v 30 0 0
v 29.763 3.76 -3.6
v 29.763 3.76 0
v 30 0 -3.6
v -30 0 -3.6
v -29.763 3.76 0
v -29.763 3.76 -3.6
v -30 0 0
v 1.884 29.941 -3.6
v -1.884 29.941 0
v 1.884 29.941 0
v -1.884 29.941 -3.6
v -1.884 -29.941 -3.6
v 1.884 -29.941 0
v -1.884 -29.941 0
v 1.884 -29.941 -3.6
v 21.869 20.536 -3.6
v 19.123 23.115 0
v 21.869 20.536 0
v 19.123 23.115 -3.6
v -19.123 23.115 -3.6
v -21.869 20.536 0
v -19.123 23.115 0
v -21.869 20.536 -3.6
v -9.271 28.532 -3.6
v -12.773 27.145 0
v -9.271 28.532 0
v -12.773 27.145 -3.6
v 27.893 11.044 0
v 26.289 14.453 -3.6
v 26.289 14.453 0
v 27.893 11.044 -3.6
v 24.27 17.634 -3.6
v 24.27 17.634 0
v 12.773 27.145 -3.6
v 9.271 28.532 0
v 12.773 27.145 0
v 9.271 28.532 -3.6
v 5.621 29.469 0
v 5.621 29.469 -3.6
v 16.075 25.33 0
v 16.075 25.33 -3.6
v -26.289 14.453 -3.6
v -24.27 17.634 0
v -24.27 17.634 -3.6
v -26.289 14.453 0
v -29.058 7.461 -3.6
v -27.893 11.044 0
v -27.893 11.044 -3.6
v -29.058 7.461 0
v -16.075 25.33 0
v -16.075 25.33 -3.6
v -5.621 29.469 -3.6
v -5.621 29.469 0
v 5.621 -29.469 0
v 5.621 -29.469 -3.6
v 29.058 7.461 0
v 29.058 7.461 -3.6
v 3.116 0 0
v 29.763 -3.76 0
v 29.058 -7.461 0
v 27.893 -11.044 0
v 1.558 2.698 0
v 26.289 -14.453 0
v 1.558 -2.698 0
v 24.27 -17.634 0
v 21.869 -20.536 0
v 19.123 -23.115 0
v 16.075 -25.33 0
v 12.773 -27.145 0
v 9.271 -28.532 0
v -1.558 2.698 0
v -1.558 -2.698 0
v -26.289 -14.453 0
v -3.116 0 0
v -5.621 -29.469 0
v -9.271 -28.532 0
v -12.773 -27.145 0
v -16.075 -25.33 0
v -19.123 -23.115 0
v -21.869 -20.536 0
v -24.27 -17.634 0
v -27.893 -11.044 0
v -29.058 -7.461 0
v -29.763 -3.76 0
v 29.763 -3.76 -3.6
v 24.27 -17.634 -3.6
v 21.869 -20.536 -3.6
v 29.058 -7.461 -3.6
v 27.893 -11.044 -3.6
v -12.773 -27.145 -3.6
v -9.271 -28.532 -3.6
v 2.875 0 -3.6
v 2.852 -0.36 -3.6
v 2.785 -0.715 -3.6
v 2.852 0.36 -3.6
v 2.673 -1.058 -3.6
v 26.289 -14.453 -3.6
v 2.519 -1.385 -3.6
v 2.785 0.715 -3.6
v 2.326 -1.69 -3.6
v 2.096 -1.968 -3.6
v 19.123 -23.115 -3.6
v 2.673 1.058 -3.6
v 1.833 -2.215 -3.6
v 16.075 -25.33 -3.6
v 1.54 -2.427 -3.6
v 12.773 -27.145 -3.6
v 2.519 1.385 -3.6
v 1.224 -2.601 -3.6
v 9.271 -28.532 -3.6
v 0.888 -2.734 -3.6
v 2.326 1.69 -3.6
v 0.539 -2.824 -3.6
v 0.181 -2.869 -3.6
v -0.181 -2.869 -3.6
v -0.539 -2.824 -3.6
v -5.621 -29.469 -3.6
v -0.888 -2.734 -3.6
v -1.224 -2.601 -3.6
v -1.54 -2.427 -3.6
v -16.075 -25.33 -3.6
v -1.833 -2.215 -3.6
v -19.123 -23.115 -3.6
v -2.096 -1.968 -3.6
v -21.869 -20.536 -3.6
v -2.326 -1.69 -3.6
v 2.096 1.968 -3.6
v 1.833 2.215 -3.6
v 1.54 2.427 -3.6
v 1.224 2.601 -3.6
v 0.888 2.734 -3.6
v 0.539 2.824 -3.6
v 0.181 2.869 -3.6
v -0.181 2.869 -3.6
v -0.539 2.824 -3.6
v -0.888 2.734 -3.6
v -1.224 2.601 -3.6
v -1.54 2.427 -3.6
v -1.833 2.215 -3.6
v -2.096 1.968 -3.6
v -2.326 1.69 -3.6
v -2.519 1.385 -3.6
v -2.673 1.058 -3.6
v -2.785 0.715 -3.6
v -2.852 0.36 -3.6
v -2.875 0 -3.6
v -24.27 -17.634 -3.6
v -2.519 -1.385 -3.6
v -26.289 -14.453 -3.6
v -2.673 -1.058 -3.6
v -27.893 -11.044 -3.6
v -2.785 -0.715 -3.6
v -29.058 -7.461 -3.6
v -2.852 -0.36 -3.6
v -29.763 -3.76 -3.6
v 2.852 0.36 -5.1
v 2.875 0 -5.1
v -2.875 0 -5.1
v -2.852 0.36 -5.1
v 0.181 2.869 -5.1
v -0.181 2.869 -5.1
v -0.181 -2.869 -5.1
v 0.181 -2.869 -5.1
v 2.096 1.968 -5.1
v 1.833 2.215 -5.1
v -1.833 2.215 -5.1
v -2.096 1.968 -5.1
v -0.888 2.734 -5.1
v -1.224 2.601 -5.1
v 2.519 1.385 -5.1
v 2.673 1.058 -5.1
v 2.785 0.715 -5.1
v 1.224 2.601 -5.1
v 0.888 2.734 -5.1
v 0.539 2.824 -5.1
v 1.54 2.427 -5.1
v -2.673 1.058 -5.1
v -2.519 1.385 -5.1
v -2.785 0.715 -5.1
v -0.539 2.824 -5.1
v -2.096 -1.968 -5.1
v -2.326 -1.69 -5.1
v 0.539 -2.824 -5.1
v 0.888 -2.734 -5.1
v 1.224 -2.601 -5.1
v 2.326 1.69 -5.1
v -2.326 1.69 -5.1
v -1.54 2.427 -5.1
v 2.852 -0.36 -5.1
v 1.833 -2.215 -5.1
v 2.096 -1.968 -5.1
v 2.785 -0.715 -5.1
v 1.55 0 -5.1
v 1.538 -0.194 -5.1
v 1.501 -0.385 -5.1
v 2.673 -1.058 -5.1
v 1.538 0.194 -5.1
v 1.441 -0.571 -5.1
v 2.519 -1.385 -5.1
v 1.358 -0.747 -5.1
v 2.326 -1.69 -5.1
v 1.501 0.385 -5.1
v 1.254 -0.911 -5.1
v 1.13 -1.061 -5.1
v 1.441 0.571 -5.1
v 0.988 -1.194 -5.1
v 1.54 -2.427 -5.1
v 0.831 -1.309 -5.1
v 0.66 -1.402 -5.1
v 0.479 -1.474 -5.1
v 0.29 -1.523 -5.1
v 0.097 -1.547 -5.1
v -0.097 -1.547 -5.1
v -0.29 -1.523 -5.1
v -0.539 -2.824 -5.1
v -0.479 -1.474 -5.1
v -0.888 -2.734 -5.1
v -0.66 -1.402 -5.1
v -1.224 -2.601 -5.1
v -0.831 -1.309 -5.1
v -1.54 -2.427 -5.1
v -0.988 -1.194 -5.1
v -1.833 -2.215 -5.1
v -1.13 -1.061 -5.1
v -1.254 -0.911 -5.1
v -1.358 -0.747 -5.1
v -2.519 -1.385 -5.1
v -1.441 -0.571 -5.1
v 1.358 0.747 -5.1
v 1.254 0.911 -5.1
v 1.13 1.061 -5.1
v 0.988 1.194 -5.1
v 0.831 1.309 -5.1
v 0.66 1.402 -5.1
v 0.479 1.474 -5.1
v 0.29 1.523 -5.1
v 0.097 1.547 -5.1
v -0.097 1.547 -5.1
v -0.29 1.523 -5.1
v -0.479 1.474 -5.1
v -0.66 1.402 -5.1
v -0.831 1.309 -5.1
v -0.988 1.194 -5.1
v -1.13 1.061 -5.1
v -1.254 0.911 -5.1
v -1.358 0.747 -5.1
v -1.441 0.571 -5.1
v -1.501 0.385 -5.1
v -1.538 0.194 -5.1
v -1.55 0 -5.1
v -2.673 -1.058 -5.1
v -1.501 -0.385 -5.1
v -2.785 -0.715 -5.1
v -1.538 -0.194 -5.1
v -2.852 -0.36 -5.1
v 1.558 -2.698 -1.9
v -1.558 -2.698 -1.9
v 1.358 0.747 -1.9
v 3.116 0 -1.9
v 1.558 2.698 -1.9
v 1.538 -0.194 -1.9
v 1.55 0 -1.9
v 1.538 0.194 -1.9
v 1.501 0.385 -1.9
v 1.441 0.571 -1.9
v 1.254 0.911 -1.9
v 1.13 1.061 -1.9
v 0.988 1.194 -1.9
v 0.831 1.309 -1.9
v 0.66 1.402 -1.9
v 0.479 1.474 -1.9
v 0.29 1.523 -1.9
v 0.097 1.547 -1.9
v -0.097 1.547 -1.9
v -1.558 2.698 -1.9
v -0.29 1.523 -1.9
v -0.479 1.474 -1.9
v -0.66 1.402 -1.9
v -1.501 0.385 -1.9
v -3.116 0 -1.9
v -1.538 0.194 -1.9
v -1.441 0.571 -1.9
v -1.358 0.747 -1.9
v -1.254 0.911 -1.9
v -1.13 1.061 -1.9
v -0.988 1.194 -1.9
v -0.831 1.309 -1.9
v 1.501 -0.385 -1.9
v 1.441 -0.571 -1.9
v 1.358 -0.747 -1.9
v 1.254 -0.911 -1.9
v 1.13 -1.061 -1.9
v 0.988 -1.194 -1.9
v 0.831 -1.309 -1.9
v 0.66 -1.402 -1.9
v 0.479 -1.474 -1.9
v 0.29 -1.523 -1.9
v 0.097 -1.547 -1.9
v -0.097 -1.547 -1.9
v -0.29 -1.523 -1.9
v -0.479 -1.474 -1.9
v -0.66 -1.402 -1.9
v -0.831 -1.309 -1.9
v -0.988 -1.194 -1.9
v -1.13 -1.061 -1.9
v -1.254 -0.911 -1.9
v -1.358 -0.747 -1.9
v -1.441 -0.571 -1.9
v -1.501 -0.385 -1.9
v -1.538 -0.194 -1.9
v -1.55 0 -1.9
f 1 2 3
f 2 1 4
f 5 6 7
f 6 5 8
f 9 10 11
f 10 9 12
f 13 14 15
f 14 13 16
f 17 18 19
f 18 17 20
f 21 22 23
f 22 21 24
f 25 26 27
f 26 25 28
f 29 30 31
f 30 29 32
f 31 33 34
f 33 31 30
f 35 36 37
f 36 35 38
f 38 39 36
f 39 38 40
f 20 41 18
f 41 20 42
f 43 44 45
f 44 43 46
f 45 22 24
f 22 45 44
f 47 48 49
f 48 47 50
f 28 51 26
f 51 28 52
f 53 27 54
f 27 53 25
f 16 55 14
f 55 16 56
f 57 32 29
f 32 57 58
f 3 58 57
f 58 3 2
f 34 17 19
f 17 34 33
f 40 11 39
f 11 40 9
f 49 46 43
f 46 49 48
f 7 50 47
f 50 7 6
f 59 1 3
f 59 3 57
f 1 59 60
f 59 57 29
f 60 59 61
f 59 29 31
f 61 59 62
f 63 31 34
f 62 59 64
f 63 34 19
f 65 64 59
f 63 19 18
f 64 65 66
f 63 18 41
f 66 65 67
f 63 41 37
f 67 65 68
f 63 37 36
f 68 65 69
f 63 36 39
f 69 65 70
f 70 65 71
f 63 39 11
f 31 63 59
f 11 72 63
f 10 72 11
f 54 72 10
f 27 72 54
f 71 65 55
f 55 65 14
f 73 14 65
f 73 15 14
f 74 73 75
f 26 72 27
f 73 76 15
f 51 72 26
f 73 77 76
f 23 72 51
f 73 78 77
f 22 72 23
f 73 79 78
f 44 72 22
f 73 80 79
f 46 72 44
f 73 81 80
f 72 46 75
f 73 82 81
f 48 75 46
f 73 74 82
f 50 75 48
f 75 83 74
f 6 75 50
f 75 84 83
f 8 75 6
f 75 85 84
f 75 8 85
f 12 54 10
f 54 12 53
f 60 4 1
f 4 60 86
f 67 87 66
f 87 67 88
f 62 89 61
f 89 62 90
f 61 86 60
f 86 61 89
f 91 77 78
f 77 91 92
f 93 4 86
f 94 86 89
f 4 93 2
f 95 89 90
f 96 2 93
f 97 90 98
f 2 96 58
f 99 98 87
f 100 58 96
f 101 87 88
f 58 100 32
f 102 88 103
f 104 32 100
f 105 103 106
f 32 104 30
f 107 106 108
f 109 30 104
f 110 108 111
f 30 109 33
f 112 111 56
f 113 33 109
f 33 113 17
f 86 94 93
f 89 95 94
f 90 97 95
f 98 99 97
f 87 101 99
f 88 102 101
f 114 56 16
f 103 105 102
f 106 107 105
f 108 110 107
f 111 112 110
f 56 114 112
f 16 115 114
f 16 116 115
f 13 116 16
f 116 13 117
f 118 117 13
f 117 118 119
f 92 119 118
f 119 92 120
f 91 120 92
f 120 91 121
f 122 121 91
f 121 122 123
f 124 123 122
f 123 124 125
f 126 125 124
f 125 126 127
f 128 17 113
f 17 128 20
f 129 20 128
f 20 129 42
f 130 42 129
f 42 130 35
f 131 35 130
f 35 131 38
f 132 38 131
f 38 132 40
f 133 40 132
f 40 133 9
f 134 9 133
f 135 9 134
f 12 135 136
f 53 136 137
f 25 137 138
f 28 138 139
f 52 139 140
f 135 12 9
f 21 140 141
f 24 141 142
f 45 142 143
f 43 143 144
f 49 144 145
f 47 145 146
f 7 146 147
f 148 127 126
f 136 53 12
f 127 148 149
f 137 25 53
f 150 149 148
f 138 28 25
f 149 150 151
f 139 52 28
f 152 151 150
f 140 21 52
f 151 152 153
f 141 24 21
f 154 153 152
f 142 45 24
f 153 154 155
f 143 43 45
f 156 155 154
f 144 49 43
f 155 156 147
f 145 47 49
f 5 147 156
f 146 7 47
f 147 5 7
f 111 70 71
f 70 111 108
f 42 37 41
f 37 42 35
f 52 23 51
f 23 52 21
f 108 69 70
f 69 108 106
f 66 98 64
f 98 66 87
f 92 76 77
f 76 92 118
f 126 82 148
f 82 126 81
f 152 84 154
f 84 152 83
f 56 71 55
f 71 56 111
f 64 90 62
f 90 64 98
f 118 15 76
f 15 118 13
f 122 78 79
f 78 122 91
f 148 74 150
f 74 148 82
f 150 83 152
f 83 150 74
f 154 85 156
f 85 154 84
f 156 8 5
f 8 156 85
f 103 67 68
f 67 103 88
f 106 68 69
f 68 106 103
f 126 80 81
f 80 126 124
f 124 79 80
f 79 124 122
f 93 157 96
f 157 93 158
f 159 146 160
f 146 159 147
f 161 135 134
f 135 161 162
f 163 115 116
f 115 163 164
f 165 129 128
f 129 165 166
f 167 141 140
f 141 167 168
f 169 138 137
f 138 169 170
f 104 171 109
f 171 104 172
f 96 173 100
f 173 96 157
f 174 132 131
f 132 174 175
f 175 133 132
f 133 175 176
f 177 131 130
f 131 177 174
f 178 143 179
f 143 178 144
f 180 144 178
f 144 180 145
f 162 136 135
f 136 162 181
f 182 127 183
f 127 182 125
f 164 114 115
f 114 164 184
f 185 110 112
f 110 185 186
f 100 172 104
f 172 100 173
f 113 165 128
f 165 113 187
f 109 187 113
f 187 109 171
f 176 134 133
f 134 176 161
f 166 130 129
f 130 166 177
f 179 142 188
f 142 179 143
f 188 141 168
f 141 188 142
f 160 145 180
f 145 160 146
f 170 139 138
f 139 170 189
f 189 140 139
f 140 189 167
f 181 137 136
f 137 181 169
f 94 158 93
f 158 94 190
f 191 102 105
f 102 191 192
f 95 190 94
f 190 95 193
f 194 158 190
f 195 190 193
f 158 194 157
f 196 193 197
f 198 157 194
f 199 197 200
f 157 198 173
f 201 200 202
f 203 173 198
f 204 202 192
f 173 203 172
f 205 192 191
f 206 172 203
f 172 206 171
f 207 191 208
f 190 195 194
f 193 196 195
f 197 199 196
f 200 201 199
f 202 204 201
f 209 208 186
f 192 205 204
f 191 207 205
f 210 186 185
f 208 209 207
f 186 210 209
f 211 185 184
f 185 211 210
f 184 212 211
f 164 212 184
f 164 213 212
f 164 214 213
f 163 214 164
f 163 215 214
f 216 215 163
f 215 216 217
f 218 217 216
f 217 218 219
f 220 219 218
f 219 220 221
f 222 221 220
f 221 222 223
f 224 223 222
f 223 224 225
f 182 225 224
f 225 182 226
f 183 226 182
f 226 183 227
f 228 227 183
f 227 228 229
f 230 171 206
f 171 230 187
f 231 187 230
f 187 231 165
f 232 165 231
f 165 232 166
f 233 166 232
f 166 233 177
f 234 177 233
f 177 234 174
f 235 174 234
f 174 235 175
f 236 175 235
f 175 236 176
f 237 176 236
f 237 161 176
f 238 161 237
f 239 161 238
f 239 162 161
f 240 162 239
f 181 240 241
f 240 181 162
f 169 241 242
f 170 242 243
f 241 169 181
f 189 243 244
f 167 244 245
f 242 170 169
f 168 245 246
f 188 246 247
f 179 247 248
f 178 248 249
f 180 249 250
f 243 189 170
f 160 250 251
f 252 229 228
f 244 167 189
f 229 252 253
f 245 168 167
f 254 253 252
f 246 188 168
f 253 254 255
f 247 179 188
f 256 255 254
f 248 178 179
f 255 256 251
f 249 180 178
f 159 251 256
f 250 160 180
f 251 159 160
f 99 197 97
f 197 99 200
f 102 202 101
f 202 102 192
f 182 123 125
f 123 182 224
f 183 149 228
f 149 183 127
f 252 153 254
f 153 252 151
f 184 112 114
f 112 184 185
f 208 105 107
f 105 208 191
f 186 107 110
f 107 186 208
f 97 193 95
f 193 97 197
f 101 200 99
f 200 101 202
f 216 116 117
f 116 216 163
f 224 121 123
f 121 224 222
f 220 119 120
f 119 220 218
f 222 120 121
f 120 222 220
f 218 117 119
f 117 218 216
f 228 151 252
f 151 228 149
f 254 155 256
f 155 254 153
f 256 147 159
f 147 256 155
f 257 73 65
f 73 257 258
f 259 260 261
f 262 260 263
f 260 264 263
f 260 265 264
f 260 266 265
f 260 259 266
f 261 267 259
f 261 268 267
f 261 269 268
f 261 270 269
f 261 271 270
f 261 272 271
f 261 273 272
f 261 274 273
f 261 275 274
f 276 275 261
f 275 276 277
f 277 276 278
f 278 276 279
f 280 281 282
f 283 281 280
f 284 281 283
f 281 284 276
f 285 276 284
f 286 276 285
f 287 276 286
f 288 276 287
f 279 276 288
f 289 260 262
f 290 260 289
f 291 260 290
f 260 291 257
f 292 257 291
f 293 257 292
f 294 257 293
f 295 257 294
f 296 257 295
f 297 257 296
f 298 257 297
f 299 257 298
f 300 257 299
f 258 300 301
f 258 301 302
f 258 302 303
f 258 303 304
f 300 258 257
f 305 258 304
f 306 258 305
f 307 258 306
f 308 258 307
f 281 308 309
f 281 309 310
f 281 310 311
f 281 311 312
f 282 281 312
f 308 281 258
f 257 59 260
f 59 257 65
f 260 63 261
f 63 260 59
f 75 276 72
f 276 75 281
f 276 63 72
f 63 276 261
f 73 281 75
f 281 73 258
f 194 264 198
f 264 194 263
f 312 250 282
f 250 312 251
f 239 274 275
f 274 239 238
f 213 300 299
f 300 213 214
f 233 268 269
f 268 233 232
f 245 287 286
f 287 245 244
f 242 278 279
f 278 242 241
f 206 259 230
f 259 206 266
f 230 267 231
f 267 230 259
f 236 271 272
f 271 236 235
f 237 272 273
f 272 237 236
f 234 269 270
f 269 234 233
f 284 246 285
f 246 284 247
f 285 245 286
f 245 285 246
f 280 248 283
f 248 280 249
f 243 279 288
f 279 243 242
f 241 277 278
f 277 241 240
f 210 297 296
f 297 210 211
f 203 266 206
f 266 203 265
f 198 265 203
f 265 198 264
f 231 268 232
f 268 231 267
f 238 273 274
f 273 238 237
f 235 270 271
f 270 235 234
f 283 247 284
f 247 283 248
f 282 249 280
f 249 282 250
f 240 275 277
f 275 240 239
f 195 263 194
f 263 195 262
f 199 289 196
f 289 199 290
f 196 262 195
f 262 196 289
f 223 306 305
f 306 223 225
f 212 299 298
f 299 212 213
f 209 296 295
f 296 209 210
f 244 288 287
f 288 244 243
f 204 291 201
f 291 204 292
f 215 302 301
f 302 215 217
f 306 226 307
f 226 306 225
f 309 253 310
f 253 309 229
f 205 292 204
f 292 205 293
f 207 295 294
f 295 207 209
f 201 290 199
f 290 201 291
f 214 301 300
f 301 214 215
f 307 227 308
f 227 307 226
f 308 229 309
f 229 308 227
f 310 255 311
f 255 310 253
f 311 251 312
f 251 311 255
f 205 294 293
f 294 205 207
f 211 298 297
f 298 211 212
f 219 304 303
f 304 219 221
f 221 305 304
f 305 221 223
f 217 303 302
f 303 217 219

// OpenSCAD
$fn = 50;

difference() {
	union() {
		translate(v = [0, 0, -3.6]) {
			cylinder(h = 3.6, r = 30.0);
		}
		#translate(v = [0, 0, -5.1]) {
			cylinder(h = 5.1, r = 2.875);
		}
	}
	union() {
		translate(v = [0, 0, 0]) {
			rotate(a = [0, 0, 0]) {
				difference() {
					union() {
						translate(v = [0, 0, -1.9]) {
							linear_extrude(height = 1.9) {
								polygon(points = [[3.1158, 0.0], [1.5579000000000005, 2.698361953111554], [-1.5578999999999994, 2.6983619531115544], [-3.1158, 3.815754496783323e-16], [-1.5579000000000014, -2.6983619531115535], [1.557899999999998, -2.6983619531115552]]);
							}
						}
					}
					union();
				}
			}
		}
		#translate(v = [0, 0, -100.0]) {
			cylinder(h = 200, r = 1.55);
		}
	}
}
